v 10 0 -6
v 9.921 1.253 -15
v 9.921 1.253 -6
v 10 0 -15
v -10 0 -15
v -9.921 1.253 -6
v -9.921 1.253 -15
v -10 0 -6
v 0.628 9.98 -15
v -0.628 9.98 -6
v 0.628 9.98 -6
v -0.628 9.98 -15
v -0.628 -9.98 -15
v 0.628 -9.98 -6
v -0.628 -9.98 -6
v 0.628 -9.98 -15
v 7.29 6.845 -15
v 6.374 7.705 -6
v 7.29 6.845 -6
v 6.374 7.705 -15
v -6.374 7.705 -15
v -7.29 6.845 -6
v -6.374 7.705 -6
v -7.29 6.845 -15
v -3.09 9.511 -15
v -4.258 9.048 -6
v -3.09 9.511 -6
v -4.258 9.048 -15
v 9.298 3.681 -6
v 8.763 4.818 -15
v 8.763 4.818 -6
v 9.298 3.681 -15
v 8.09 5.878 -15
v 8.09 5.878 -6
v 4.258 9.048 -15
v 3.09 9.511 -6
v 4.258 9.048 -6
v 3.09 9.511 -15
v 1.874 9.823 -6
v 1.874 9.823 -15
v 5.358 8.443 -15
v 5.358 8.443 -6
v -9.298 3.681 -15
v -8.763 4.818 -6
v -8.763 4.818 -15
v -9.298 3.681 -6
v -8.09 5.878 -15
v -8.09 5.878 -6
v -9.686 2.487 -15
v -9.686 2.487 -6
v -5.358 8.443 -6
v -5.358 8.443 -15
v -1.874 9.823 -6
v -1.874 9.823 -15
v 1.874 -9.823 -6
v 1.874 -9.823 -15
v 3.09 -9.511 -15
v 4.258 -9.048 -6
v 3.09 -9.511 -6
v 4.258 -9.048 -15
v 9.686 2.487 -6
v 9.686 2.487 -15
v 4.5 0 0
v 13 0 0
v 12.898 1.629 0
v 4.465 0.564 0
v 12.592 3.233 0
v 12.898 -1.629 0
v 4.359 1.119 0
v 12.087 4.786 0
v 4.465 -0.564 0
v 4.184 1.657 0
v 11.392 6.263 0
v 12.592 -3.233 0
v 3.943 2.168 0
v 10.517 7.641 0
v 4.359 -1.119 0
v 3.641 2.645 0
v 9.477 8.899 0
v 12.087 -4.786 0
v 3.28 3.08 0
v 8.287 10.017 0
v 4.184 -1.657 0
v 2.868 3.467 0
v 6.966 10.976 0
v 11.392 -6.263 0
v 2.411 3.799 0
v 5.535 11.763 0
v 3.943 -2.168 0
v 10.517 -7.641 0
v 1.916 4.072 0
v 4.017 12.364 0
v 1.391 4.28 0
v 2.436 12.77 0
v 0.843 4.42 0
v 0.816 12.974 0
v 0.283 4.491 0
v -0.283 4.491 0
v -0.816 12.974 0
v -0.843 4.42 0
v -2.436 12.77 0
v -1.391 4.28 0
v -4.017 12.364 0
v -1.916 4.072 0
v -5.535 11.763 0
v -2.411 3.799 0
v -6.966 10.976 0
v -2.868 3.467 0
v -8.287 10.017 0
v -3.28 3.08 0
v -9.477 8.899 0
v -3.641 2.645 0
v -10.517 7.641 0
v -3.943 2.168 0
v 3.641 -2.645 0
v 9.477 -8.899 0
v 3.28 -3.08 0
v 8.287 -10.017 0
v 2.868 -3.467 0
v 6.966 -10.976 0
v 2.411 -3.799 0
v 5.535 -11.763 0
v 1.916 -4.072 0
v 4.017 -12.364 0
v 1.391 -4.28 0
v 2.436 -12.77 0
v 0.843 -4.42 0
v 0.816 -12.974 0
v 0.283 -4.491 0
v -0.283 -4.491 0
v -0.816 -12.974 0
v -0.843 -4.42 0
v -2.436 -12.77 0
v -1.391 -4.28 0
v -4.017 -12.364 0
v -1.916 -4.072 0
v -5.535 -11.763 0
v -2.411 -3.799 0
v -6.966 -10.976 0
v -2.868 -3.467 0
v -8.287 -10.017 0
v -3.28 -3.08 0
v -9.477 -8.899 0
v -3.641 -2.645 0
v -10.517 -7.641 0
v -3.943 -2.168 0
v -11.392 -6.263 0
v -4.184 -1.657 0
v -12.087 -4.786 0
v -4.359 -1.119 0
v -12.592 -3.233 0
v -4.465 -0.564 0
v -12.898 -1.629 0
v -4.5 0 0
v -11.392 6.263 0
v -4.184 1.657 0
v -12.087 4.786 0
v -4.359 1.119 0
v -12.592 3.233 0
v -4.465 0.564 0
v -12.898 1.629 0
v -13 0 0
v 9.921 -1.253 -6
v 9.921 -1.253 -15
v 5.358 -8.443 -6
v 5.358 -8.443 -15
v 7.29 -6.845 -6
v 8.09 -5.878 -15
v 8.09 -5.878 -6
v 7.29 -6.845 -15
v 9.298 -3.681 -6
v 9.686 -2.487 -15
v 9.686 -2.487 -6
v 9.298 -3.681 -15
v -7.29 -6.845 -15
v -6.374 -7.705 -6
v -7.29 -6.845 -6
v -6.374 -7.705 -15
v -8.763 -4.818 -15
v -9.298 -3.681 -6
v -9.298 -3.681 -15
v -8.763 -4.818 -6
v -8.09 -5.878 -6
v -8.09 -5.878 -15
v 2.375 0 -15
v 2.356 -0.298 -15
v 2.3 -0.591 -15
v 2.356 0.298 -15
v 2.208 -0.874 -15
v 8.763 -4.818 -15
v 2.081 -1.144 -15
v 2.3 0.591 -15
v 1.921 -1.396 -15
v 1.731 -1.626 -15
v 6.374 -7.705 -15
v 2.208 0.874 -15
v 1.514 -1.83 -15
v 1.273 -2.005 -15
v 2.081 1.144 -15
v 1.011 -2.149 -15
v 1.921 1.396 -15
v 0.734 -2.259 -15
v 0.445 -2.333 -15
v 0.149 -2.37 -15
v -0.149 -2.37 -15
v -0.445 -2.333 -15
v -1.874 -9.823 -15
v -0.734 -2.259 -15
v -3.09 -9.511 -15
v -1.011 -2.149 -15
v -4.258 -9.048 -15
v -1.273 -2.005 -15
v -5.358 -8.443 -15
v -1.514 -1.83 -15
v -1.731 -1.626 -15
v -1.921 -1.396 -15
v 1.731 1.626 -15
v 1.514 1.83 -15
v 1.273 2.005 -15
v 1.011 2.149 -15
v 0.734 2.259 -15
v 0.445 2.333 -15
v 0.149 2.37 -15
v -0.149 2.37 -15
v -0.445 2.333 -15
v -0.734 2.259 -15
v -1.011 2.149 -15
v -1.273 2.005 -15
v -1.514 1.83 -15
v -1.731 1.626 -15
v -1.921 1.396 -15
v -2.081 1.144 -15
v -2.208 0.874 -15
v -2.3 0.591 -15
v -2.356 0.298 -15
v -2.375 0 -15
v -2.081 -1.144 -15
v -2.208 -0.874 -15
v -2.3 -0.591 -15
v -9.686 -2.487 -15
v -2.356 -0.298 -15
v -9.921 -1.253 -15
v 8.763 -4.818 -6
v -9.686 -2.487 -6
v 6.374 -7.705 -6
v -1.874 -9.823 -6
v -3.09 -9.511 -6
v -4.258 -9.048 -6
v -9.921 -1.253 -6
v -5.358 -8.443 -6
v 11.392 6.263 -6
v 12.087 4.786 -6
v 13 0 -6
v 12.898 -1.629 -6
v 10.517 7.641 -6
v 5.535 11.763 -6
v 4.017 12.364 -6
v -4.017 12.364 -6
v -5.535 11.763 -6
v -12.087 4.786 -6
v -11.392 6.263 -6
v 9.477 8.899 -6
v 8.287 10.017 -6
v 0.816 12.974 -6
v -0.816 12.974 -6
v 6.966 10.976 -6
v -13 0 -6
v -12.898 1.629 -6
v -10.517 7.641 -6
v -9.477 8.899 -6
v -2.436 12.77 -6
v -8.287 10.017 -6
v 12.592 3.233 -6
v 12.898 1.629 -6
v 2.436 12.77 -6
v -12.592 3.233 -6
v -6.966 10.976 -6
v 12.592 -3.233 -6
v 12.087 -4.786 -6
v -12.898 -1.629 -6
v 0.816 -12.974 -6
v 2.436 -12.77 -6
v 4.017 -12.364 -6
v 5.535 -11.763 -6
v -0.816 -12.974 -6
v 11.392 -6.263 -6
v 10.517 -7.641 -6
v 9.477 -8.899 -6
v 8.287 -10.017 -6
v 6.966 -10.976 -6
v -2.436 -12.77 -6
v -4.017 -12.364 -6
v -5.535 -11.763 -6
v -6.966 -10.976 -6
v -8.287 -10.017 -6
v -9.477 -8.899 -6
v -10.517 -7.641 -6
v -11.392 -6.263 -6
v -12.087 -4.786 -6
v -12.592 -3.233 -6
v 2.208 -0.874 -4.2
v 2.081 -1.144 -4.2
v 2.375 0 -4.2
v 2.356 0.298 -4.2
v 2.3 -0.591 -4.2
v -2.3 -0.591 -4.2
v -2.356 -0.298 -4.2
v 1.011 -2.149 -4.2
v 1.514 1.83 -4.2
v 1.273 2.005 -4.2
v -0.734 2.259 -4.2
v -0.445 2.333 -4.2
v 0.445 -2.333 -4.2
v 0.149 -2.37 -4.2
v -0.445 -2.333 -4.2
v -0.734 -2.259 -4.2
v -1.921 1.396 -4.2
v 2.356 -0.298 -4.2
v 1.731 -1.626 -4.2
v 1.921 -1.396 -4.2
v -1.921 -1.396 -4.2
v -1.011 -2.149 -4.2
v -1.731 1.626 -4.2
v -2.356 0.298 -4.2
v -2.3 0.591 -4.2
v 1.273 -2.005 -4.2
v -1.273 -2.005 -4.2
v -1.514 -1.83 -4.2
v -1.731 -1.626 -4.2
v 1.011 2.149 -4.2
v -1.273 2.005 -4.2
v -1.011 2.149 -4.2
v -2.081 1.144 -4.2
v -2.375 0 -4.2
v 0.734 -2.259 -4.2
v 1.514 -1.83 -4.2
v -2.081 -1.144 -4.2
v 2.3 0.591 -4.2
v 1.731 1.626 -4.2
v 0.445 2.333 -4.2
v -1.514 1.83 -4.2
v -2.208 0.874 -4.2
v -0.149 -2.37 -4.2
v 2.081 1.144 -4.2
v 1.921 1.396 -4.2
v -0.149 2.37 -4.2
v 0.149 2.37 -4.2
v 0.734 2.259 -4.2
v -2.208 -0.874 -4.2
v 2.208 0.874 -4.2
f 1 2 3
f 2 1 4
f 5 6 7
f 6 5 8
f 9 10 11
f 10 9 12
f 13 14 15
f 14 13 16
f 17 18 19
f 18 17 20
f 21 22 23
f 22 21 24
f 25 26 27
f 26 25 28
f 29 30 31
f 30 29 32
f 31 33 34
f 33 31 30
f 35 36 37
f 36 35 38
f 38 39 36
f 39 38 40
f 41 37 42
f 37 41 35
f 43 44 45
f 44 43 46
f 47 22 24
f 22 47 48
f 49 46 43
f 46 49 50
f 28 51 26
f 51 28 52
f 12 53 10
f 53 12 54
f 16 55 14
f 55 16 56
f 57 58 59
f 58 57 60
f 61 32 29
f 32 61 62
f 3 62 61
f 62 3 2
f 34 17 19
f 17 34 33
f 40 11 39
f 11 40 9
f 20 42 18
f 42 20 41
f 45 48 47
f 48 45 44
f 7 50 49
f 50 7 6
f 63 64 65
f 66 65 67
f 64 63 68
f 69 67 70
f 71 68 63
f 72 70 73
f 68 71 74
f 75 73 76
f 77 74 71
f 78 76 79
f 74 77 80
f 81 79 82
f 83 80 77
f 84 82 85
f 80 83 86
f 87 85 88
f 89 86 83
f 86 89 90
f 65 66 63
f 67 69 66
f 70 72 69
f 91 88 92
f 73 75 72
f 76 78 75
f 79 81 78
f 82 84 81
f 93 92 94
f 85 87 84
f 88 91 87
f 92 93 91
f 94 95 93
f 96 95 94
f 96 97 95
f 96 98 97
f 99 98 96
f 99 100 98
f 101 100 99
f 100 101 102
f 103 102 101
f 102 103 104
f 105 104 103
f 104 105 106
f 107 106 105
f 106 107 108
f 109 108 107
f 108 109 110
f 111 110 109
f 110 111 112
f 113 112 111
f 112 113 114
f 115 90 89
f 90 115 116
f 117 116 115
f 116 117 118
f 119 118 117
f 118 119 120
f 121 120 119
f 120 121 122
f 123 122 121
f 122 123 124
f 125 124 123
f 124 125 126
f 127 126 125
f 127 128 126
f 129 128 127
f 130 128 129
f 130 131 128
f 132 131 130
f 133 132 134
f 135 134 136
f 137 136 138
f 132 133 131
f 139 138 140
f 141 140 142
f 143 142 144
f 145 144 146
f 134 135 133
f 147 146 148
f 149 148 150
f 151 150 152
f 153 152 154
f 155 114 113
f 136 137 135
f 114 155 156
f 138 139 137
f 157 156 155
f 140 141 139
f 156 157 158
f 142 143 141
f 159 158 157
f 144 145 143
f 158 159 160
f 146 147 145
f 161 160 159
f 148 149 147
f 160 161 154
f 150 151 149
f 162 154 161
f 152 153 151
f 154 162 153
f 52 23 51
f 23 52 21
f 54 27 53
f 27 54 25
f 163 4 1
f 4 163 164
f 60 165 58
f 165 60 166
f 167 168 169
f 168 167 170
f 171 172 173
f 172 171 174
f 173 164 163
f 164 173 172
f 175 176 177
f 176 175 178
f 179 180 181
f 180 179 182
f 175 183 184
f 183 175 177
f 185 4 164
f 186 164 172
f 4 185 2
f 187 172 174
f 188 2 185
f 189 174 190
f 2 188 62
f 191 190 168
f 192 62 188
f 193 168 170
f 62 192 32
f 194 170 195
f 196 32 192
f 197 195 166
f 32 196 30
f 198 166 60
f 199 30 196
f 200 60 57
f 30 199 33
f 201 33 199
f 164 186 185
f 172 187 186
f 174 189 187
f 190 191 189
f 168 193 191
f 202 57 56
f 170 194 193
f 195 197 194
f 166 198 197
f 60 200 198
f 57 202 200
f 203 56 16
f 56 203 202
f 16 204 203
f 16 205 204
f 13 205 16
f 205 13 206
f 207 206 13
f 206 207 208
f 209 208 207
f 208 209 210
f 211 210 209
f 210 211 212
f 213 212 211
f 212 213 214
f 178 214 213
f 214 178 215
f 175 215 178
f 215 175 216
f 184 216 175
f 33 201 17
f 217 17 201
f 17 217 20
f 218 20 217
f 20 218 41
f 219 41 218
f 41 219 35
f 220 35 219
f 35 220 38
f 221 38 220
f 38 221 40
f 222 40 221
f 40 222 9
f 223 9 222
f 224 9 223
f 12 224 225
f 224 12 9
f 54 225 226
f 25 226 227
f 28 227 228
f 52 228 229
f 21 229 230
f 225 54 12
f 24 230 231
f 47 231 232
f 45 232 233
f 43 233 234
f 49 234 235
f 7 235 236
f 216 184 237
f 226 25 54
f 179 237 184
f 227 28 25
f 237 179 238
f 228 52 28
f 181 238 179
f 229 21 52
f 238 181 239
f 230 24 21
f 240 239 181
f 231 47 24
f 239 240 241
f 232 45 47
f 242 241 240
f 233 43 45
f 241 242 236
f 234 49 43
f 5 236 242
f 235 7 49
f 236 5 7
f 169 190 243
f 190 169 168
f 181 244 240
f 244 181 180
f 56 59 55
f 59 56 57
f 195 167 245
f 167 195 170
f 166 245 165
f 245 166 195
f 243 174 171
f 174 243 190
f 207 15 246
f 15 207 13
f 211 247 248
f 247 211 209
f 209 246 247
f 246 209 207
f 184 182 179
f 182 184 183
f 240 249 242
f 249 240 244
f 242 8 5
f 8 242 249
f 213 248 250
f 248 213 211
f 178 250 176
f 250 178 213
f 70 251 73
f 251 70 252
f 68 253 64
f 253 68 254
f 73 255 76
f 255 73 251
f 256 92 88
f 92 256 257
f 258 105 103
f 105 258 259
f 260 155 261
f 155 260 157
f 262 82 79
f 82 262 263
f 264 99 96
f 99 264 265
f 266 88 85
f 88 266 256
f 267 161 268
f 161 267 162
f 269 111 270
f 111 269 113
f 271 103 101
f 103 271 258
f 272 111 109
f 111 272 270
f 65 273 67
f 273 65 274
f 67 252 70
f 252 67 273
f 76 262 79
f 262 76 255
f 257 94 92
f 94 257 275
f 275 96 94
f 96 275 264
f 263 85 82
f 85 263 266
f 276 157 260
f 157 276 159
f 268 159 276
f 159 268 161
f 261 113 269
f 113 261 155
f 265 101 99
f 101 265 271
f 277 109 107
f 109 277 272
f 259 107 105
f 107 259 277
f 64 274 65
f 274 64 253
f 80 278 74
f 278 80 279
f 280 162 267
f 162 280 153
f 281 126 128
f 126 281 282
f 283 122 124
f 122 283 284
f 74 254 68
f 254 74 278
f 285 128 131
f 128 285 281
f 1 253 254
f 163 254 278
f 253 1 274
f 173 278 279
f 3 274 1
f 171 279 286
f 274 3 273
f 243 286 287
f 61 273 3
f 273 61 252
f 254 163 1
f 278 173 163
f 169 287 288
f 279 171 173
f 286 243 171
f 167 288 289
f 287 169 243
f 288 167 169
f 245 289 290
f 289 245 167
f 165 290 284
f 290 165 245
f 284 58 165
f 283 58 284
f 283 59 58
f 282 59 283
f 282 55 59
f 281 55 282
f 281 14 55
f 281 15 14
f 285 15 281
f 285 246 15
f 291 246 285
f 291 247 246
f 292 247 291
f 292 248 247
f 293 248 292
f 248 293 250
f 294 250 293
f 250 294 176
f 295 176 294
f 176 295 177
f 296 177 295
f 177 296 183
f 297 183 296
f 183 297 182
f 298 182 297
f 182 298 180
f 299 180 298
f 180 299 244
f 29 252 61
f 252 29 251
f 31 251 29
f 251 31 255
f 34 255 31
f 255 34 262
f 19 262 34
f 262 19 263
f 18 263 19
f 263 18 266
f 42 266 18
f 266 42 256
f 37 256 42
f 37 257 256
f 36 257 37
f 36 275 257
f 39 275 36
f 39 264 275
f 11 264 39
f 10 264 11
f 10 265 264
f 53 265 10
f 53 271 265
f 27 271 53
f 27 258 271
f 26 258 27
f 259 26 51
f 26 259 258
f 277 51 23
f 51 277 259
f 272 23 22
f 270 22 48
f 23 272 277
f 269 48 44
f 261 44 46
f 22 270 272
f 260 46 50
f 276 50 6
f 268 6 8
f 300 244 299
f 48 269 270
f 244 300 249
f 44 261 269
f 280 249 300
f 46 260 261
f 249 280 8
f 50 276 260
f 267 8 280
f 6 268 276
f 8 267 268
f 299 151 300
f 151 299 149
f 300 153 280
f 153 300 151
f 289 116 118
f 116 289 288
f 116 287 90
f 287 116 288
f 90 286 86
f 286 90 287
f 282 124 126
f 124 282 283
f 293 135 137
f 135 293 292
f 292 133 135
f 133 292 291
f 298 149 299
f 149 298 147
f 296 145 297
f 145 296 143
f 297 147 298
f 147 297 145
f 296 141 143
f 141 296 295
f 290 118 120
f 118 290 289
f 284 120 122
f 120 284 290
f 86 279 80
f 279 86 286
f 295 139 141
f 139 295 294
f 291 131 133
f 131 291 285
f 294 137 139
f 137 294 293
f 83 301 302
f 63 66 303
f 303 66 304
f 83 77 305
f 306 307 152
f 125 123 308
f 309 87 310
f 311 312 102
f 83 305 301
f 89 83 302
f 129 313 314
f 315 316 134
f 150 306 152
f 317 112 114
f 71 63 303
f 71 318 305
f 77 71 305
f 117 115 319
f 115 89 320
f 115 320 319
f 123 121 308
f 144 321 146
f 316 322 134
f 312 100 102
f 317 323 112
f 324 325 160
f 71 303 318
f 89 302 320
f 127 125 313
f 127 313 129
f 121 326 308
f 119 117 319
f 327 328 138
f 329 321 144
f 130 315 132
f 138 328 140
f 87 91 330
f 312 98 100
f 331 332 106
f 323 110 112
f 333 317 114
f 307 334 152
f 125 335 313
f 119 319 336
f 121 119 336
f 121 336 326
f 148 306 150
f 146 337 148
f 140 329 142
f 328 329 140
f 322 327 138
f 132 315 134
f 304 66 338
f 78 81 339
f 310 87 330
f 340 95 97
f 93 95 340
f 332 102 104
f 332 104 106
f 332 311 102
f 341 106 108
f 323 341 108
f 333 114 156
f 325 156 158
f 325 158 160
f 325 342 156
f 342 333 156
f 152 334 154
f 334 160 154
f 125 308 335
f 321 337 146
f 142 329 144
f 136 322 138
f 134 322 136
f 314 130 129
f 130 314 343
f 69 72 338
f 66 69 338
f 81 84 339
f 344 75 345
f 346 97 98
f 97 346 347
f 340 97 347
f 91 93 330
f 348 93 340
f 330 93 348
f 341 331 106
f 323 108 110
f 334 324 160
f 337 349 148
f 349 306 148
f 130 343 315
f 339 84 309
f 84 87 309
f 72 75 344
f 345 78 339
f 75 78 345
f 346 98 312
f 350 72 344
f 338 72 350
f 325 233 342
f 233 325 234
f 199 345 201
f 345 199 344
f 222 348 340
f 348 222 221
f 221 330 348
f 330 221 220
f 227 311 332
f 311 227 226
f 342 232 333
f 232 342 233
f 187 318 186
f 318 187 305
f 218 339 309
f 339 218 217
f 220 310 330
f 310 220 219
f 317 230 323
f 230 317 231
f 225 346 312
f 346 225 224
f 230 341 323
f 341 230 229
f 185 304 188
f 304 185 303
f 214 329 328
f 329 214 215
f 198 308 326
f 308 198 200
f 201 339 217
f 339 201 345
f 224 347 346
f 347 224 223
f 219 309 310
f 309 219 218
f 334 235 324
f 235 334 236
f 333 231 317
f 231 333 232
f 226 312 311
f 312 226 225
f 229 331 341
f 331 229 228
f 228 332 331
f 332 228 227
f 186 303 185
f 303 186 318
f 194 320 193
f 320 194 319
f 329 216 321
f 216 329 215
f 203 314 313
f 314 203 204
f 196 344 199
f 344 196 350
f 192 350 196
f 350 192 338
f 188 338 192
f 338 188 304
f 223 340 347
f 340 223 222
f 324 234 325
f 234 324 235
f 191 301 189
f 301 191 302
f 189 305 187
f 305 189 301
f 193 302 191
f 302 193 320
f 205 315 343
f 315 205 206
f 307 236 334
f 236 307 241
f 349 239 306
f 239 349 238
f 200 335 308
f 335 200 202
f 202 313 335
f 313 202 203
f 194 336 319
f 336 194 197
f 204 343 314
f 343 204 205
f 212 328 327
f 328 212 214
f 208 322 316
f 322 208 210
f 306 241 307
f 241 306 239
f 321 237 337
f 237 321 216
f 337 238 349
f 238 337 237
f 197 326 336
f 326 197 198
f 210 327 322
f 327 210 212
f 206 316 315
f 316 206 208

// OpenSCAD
$fn = 50;


difference() {
	union() {
		translate(v = [0, 0, -15.0000000000]) {
			cylinder(h = 15, r = 10.0000000000);
		}
		translate(v = [0, 0, -6.0000000000]) {
			cylinder(h = 6, r = 13.0000000000);
		}
	}
	union() {
		translate(v = [0, 0, 0]) {
			rotate(a = [0, 0, 0]) {
				difference() {
					union() {
						#translate(v = [0, 0, -15.0000000000]) {
							cylinder(h = 15, r = 2.2500000000);
						}
						#translate(v = [0, 0, -4.2000000000]) {
							cylinder(h = 4.2000000000, r1 = 2.3750000000, r2 = 4.5000000000);
						}
						#translate(v = [0, 0, -15.0000000000]) {
							cylinder(h = 15, r = 2.3750000000);
						}
						#translate(v = [0, 0, -15.0000000000]) {
							cylinder(h = 15, r = 2.2500000000);
						}
					}
					union();
				}
			}
		}
	}
}
